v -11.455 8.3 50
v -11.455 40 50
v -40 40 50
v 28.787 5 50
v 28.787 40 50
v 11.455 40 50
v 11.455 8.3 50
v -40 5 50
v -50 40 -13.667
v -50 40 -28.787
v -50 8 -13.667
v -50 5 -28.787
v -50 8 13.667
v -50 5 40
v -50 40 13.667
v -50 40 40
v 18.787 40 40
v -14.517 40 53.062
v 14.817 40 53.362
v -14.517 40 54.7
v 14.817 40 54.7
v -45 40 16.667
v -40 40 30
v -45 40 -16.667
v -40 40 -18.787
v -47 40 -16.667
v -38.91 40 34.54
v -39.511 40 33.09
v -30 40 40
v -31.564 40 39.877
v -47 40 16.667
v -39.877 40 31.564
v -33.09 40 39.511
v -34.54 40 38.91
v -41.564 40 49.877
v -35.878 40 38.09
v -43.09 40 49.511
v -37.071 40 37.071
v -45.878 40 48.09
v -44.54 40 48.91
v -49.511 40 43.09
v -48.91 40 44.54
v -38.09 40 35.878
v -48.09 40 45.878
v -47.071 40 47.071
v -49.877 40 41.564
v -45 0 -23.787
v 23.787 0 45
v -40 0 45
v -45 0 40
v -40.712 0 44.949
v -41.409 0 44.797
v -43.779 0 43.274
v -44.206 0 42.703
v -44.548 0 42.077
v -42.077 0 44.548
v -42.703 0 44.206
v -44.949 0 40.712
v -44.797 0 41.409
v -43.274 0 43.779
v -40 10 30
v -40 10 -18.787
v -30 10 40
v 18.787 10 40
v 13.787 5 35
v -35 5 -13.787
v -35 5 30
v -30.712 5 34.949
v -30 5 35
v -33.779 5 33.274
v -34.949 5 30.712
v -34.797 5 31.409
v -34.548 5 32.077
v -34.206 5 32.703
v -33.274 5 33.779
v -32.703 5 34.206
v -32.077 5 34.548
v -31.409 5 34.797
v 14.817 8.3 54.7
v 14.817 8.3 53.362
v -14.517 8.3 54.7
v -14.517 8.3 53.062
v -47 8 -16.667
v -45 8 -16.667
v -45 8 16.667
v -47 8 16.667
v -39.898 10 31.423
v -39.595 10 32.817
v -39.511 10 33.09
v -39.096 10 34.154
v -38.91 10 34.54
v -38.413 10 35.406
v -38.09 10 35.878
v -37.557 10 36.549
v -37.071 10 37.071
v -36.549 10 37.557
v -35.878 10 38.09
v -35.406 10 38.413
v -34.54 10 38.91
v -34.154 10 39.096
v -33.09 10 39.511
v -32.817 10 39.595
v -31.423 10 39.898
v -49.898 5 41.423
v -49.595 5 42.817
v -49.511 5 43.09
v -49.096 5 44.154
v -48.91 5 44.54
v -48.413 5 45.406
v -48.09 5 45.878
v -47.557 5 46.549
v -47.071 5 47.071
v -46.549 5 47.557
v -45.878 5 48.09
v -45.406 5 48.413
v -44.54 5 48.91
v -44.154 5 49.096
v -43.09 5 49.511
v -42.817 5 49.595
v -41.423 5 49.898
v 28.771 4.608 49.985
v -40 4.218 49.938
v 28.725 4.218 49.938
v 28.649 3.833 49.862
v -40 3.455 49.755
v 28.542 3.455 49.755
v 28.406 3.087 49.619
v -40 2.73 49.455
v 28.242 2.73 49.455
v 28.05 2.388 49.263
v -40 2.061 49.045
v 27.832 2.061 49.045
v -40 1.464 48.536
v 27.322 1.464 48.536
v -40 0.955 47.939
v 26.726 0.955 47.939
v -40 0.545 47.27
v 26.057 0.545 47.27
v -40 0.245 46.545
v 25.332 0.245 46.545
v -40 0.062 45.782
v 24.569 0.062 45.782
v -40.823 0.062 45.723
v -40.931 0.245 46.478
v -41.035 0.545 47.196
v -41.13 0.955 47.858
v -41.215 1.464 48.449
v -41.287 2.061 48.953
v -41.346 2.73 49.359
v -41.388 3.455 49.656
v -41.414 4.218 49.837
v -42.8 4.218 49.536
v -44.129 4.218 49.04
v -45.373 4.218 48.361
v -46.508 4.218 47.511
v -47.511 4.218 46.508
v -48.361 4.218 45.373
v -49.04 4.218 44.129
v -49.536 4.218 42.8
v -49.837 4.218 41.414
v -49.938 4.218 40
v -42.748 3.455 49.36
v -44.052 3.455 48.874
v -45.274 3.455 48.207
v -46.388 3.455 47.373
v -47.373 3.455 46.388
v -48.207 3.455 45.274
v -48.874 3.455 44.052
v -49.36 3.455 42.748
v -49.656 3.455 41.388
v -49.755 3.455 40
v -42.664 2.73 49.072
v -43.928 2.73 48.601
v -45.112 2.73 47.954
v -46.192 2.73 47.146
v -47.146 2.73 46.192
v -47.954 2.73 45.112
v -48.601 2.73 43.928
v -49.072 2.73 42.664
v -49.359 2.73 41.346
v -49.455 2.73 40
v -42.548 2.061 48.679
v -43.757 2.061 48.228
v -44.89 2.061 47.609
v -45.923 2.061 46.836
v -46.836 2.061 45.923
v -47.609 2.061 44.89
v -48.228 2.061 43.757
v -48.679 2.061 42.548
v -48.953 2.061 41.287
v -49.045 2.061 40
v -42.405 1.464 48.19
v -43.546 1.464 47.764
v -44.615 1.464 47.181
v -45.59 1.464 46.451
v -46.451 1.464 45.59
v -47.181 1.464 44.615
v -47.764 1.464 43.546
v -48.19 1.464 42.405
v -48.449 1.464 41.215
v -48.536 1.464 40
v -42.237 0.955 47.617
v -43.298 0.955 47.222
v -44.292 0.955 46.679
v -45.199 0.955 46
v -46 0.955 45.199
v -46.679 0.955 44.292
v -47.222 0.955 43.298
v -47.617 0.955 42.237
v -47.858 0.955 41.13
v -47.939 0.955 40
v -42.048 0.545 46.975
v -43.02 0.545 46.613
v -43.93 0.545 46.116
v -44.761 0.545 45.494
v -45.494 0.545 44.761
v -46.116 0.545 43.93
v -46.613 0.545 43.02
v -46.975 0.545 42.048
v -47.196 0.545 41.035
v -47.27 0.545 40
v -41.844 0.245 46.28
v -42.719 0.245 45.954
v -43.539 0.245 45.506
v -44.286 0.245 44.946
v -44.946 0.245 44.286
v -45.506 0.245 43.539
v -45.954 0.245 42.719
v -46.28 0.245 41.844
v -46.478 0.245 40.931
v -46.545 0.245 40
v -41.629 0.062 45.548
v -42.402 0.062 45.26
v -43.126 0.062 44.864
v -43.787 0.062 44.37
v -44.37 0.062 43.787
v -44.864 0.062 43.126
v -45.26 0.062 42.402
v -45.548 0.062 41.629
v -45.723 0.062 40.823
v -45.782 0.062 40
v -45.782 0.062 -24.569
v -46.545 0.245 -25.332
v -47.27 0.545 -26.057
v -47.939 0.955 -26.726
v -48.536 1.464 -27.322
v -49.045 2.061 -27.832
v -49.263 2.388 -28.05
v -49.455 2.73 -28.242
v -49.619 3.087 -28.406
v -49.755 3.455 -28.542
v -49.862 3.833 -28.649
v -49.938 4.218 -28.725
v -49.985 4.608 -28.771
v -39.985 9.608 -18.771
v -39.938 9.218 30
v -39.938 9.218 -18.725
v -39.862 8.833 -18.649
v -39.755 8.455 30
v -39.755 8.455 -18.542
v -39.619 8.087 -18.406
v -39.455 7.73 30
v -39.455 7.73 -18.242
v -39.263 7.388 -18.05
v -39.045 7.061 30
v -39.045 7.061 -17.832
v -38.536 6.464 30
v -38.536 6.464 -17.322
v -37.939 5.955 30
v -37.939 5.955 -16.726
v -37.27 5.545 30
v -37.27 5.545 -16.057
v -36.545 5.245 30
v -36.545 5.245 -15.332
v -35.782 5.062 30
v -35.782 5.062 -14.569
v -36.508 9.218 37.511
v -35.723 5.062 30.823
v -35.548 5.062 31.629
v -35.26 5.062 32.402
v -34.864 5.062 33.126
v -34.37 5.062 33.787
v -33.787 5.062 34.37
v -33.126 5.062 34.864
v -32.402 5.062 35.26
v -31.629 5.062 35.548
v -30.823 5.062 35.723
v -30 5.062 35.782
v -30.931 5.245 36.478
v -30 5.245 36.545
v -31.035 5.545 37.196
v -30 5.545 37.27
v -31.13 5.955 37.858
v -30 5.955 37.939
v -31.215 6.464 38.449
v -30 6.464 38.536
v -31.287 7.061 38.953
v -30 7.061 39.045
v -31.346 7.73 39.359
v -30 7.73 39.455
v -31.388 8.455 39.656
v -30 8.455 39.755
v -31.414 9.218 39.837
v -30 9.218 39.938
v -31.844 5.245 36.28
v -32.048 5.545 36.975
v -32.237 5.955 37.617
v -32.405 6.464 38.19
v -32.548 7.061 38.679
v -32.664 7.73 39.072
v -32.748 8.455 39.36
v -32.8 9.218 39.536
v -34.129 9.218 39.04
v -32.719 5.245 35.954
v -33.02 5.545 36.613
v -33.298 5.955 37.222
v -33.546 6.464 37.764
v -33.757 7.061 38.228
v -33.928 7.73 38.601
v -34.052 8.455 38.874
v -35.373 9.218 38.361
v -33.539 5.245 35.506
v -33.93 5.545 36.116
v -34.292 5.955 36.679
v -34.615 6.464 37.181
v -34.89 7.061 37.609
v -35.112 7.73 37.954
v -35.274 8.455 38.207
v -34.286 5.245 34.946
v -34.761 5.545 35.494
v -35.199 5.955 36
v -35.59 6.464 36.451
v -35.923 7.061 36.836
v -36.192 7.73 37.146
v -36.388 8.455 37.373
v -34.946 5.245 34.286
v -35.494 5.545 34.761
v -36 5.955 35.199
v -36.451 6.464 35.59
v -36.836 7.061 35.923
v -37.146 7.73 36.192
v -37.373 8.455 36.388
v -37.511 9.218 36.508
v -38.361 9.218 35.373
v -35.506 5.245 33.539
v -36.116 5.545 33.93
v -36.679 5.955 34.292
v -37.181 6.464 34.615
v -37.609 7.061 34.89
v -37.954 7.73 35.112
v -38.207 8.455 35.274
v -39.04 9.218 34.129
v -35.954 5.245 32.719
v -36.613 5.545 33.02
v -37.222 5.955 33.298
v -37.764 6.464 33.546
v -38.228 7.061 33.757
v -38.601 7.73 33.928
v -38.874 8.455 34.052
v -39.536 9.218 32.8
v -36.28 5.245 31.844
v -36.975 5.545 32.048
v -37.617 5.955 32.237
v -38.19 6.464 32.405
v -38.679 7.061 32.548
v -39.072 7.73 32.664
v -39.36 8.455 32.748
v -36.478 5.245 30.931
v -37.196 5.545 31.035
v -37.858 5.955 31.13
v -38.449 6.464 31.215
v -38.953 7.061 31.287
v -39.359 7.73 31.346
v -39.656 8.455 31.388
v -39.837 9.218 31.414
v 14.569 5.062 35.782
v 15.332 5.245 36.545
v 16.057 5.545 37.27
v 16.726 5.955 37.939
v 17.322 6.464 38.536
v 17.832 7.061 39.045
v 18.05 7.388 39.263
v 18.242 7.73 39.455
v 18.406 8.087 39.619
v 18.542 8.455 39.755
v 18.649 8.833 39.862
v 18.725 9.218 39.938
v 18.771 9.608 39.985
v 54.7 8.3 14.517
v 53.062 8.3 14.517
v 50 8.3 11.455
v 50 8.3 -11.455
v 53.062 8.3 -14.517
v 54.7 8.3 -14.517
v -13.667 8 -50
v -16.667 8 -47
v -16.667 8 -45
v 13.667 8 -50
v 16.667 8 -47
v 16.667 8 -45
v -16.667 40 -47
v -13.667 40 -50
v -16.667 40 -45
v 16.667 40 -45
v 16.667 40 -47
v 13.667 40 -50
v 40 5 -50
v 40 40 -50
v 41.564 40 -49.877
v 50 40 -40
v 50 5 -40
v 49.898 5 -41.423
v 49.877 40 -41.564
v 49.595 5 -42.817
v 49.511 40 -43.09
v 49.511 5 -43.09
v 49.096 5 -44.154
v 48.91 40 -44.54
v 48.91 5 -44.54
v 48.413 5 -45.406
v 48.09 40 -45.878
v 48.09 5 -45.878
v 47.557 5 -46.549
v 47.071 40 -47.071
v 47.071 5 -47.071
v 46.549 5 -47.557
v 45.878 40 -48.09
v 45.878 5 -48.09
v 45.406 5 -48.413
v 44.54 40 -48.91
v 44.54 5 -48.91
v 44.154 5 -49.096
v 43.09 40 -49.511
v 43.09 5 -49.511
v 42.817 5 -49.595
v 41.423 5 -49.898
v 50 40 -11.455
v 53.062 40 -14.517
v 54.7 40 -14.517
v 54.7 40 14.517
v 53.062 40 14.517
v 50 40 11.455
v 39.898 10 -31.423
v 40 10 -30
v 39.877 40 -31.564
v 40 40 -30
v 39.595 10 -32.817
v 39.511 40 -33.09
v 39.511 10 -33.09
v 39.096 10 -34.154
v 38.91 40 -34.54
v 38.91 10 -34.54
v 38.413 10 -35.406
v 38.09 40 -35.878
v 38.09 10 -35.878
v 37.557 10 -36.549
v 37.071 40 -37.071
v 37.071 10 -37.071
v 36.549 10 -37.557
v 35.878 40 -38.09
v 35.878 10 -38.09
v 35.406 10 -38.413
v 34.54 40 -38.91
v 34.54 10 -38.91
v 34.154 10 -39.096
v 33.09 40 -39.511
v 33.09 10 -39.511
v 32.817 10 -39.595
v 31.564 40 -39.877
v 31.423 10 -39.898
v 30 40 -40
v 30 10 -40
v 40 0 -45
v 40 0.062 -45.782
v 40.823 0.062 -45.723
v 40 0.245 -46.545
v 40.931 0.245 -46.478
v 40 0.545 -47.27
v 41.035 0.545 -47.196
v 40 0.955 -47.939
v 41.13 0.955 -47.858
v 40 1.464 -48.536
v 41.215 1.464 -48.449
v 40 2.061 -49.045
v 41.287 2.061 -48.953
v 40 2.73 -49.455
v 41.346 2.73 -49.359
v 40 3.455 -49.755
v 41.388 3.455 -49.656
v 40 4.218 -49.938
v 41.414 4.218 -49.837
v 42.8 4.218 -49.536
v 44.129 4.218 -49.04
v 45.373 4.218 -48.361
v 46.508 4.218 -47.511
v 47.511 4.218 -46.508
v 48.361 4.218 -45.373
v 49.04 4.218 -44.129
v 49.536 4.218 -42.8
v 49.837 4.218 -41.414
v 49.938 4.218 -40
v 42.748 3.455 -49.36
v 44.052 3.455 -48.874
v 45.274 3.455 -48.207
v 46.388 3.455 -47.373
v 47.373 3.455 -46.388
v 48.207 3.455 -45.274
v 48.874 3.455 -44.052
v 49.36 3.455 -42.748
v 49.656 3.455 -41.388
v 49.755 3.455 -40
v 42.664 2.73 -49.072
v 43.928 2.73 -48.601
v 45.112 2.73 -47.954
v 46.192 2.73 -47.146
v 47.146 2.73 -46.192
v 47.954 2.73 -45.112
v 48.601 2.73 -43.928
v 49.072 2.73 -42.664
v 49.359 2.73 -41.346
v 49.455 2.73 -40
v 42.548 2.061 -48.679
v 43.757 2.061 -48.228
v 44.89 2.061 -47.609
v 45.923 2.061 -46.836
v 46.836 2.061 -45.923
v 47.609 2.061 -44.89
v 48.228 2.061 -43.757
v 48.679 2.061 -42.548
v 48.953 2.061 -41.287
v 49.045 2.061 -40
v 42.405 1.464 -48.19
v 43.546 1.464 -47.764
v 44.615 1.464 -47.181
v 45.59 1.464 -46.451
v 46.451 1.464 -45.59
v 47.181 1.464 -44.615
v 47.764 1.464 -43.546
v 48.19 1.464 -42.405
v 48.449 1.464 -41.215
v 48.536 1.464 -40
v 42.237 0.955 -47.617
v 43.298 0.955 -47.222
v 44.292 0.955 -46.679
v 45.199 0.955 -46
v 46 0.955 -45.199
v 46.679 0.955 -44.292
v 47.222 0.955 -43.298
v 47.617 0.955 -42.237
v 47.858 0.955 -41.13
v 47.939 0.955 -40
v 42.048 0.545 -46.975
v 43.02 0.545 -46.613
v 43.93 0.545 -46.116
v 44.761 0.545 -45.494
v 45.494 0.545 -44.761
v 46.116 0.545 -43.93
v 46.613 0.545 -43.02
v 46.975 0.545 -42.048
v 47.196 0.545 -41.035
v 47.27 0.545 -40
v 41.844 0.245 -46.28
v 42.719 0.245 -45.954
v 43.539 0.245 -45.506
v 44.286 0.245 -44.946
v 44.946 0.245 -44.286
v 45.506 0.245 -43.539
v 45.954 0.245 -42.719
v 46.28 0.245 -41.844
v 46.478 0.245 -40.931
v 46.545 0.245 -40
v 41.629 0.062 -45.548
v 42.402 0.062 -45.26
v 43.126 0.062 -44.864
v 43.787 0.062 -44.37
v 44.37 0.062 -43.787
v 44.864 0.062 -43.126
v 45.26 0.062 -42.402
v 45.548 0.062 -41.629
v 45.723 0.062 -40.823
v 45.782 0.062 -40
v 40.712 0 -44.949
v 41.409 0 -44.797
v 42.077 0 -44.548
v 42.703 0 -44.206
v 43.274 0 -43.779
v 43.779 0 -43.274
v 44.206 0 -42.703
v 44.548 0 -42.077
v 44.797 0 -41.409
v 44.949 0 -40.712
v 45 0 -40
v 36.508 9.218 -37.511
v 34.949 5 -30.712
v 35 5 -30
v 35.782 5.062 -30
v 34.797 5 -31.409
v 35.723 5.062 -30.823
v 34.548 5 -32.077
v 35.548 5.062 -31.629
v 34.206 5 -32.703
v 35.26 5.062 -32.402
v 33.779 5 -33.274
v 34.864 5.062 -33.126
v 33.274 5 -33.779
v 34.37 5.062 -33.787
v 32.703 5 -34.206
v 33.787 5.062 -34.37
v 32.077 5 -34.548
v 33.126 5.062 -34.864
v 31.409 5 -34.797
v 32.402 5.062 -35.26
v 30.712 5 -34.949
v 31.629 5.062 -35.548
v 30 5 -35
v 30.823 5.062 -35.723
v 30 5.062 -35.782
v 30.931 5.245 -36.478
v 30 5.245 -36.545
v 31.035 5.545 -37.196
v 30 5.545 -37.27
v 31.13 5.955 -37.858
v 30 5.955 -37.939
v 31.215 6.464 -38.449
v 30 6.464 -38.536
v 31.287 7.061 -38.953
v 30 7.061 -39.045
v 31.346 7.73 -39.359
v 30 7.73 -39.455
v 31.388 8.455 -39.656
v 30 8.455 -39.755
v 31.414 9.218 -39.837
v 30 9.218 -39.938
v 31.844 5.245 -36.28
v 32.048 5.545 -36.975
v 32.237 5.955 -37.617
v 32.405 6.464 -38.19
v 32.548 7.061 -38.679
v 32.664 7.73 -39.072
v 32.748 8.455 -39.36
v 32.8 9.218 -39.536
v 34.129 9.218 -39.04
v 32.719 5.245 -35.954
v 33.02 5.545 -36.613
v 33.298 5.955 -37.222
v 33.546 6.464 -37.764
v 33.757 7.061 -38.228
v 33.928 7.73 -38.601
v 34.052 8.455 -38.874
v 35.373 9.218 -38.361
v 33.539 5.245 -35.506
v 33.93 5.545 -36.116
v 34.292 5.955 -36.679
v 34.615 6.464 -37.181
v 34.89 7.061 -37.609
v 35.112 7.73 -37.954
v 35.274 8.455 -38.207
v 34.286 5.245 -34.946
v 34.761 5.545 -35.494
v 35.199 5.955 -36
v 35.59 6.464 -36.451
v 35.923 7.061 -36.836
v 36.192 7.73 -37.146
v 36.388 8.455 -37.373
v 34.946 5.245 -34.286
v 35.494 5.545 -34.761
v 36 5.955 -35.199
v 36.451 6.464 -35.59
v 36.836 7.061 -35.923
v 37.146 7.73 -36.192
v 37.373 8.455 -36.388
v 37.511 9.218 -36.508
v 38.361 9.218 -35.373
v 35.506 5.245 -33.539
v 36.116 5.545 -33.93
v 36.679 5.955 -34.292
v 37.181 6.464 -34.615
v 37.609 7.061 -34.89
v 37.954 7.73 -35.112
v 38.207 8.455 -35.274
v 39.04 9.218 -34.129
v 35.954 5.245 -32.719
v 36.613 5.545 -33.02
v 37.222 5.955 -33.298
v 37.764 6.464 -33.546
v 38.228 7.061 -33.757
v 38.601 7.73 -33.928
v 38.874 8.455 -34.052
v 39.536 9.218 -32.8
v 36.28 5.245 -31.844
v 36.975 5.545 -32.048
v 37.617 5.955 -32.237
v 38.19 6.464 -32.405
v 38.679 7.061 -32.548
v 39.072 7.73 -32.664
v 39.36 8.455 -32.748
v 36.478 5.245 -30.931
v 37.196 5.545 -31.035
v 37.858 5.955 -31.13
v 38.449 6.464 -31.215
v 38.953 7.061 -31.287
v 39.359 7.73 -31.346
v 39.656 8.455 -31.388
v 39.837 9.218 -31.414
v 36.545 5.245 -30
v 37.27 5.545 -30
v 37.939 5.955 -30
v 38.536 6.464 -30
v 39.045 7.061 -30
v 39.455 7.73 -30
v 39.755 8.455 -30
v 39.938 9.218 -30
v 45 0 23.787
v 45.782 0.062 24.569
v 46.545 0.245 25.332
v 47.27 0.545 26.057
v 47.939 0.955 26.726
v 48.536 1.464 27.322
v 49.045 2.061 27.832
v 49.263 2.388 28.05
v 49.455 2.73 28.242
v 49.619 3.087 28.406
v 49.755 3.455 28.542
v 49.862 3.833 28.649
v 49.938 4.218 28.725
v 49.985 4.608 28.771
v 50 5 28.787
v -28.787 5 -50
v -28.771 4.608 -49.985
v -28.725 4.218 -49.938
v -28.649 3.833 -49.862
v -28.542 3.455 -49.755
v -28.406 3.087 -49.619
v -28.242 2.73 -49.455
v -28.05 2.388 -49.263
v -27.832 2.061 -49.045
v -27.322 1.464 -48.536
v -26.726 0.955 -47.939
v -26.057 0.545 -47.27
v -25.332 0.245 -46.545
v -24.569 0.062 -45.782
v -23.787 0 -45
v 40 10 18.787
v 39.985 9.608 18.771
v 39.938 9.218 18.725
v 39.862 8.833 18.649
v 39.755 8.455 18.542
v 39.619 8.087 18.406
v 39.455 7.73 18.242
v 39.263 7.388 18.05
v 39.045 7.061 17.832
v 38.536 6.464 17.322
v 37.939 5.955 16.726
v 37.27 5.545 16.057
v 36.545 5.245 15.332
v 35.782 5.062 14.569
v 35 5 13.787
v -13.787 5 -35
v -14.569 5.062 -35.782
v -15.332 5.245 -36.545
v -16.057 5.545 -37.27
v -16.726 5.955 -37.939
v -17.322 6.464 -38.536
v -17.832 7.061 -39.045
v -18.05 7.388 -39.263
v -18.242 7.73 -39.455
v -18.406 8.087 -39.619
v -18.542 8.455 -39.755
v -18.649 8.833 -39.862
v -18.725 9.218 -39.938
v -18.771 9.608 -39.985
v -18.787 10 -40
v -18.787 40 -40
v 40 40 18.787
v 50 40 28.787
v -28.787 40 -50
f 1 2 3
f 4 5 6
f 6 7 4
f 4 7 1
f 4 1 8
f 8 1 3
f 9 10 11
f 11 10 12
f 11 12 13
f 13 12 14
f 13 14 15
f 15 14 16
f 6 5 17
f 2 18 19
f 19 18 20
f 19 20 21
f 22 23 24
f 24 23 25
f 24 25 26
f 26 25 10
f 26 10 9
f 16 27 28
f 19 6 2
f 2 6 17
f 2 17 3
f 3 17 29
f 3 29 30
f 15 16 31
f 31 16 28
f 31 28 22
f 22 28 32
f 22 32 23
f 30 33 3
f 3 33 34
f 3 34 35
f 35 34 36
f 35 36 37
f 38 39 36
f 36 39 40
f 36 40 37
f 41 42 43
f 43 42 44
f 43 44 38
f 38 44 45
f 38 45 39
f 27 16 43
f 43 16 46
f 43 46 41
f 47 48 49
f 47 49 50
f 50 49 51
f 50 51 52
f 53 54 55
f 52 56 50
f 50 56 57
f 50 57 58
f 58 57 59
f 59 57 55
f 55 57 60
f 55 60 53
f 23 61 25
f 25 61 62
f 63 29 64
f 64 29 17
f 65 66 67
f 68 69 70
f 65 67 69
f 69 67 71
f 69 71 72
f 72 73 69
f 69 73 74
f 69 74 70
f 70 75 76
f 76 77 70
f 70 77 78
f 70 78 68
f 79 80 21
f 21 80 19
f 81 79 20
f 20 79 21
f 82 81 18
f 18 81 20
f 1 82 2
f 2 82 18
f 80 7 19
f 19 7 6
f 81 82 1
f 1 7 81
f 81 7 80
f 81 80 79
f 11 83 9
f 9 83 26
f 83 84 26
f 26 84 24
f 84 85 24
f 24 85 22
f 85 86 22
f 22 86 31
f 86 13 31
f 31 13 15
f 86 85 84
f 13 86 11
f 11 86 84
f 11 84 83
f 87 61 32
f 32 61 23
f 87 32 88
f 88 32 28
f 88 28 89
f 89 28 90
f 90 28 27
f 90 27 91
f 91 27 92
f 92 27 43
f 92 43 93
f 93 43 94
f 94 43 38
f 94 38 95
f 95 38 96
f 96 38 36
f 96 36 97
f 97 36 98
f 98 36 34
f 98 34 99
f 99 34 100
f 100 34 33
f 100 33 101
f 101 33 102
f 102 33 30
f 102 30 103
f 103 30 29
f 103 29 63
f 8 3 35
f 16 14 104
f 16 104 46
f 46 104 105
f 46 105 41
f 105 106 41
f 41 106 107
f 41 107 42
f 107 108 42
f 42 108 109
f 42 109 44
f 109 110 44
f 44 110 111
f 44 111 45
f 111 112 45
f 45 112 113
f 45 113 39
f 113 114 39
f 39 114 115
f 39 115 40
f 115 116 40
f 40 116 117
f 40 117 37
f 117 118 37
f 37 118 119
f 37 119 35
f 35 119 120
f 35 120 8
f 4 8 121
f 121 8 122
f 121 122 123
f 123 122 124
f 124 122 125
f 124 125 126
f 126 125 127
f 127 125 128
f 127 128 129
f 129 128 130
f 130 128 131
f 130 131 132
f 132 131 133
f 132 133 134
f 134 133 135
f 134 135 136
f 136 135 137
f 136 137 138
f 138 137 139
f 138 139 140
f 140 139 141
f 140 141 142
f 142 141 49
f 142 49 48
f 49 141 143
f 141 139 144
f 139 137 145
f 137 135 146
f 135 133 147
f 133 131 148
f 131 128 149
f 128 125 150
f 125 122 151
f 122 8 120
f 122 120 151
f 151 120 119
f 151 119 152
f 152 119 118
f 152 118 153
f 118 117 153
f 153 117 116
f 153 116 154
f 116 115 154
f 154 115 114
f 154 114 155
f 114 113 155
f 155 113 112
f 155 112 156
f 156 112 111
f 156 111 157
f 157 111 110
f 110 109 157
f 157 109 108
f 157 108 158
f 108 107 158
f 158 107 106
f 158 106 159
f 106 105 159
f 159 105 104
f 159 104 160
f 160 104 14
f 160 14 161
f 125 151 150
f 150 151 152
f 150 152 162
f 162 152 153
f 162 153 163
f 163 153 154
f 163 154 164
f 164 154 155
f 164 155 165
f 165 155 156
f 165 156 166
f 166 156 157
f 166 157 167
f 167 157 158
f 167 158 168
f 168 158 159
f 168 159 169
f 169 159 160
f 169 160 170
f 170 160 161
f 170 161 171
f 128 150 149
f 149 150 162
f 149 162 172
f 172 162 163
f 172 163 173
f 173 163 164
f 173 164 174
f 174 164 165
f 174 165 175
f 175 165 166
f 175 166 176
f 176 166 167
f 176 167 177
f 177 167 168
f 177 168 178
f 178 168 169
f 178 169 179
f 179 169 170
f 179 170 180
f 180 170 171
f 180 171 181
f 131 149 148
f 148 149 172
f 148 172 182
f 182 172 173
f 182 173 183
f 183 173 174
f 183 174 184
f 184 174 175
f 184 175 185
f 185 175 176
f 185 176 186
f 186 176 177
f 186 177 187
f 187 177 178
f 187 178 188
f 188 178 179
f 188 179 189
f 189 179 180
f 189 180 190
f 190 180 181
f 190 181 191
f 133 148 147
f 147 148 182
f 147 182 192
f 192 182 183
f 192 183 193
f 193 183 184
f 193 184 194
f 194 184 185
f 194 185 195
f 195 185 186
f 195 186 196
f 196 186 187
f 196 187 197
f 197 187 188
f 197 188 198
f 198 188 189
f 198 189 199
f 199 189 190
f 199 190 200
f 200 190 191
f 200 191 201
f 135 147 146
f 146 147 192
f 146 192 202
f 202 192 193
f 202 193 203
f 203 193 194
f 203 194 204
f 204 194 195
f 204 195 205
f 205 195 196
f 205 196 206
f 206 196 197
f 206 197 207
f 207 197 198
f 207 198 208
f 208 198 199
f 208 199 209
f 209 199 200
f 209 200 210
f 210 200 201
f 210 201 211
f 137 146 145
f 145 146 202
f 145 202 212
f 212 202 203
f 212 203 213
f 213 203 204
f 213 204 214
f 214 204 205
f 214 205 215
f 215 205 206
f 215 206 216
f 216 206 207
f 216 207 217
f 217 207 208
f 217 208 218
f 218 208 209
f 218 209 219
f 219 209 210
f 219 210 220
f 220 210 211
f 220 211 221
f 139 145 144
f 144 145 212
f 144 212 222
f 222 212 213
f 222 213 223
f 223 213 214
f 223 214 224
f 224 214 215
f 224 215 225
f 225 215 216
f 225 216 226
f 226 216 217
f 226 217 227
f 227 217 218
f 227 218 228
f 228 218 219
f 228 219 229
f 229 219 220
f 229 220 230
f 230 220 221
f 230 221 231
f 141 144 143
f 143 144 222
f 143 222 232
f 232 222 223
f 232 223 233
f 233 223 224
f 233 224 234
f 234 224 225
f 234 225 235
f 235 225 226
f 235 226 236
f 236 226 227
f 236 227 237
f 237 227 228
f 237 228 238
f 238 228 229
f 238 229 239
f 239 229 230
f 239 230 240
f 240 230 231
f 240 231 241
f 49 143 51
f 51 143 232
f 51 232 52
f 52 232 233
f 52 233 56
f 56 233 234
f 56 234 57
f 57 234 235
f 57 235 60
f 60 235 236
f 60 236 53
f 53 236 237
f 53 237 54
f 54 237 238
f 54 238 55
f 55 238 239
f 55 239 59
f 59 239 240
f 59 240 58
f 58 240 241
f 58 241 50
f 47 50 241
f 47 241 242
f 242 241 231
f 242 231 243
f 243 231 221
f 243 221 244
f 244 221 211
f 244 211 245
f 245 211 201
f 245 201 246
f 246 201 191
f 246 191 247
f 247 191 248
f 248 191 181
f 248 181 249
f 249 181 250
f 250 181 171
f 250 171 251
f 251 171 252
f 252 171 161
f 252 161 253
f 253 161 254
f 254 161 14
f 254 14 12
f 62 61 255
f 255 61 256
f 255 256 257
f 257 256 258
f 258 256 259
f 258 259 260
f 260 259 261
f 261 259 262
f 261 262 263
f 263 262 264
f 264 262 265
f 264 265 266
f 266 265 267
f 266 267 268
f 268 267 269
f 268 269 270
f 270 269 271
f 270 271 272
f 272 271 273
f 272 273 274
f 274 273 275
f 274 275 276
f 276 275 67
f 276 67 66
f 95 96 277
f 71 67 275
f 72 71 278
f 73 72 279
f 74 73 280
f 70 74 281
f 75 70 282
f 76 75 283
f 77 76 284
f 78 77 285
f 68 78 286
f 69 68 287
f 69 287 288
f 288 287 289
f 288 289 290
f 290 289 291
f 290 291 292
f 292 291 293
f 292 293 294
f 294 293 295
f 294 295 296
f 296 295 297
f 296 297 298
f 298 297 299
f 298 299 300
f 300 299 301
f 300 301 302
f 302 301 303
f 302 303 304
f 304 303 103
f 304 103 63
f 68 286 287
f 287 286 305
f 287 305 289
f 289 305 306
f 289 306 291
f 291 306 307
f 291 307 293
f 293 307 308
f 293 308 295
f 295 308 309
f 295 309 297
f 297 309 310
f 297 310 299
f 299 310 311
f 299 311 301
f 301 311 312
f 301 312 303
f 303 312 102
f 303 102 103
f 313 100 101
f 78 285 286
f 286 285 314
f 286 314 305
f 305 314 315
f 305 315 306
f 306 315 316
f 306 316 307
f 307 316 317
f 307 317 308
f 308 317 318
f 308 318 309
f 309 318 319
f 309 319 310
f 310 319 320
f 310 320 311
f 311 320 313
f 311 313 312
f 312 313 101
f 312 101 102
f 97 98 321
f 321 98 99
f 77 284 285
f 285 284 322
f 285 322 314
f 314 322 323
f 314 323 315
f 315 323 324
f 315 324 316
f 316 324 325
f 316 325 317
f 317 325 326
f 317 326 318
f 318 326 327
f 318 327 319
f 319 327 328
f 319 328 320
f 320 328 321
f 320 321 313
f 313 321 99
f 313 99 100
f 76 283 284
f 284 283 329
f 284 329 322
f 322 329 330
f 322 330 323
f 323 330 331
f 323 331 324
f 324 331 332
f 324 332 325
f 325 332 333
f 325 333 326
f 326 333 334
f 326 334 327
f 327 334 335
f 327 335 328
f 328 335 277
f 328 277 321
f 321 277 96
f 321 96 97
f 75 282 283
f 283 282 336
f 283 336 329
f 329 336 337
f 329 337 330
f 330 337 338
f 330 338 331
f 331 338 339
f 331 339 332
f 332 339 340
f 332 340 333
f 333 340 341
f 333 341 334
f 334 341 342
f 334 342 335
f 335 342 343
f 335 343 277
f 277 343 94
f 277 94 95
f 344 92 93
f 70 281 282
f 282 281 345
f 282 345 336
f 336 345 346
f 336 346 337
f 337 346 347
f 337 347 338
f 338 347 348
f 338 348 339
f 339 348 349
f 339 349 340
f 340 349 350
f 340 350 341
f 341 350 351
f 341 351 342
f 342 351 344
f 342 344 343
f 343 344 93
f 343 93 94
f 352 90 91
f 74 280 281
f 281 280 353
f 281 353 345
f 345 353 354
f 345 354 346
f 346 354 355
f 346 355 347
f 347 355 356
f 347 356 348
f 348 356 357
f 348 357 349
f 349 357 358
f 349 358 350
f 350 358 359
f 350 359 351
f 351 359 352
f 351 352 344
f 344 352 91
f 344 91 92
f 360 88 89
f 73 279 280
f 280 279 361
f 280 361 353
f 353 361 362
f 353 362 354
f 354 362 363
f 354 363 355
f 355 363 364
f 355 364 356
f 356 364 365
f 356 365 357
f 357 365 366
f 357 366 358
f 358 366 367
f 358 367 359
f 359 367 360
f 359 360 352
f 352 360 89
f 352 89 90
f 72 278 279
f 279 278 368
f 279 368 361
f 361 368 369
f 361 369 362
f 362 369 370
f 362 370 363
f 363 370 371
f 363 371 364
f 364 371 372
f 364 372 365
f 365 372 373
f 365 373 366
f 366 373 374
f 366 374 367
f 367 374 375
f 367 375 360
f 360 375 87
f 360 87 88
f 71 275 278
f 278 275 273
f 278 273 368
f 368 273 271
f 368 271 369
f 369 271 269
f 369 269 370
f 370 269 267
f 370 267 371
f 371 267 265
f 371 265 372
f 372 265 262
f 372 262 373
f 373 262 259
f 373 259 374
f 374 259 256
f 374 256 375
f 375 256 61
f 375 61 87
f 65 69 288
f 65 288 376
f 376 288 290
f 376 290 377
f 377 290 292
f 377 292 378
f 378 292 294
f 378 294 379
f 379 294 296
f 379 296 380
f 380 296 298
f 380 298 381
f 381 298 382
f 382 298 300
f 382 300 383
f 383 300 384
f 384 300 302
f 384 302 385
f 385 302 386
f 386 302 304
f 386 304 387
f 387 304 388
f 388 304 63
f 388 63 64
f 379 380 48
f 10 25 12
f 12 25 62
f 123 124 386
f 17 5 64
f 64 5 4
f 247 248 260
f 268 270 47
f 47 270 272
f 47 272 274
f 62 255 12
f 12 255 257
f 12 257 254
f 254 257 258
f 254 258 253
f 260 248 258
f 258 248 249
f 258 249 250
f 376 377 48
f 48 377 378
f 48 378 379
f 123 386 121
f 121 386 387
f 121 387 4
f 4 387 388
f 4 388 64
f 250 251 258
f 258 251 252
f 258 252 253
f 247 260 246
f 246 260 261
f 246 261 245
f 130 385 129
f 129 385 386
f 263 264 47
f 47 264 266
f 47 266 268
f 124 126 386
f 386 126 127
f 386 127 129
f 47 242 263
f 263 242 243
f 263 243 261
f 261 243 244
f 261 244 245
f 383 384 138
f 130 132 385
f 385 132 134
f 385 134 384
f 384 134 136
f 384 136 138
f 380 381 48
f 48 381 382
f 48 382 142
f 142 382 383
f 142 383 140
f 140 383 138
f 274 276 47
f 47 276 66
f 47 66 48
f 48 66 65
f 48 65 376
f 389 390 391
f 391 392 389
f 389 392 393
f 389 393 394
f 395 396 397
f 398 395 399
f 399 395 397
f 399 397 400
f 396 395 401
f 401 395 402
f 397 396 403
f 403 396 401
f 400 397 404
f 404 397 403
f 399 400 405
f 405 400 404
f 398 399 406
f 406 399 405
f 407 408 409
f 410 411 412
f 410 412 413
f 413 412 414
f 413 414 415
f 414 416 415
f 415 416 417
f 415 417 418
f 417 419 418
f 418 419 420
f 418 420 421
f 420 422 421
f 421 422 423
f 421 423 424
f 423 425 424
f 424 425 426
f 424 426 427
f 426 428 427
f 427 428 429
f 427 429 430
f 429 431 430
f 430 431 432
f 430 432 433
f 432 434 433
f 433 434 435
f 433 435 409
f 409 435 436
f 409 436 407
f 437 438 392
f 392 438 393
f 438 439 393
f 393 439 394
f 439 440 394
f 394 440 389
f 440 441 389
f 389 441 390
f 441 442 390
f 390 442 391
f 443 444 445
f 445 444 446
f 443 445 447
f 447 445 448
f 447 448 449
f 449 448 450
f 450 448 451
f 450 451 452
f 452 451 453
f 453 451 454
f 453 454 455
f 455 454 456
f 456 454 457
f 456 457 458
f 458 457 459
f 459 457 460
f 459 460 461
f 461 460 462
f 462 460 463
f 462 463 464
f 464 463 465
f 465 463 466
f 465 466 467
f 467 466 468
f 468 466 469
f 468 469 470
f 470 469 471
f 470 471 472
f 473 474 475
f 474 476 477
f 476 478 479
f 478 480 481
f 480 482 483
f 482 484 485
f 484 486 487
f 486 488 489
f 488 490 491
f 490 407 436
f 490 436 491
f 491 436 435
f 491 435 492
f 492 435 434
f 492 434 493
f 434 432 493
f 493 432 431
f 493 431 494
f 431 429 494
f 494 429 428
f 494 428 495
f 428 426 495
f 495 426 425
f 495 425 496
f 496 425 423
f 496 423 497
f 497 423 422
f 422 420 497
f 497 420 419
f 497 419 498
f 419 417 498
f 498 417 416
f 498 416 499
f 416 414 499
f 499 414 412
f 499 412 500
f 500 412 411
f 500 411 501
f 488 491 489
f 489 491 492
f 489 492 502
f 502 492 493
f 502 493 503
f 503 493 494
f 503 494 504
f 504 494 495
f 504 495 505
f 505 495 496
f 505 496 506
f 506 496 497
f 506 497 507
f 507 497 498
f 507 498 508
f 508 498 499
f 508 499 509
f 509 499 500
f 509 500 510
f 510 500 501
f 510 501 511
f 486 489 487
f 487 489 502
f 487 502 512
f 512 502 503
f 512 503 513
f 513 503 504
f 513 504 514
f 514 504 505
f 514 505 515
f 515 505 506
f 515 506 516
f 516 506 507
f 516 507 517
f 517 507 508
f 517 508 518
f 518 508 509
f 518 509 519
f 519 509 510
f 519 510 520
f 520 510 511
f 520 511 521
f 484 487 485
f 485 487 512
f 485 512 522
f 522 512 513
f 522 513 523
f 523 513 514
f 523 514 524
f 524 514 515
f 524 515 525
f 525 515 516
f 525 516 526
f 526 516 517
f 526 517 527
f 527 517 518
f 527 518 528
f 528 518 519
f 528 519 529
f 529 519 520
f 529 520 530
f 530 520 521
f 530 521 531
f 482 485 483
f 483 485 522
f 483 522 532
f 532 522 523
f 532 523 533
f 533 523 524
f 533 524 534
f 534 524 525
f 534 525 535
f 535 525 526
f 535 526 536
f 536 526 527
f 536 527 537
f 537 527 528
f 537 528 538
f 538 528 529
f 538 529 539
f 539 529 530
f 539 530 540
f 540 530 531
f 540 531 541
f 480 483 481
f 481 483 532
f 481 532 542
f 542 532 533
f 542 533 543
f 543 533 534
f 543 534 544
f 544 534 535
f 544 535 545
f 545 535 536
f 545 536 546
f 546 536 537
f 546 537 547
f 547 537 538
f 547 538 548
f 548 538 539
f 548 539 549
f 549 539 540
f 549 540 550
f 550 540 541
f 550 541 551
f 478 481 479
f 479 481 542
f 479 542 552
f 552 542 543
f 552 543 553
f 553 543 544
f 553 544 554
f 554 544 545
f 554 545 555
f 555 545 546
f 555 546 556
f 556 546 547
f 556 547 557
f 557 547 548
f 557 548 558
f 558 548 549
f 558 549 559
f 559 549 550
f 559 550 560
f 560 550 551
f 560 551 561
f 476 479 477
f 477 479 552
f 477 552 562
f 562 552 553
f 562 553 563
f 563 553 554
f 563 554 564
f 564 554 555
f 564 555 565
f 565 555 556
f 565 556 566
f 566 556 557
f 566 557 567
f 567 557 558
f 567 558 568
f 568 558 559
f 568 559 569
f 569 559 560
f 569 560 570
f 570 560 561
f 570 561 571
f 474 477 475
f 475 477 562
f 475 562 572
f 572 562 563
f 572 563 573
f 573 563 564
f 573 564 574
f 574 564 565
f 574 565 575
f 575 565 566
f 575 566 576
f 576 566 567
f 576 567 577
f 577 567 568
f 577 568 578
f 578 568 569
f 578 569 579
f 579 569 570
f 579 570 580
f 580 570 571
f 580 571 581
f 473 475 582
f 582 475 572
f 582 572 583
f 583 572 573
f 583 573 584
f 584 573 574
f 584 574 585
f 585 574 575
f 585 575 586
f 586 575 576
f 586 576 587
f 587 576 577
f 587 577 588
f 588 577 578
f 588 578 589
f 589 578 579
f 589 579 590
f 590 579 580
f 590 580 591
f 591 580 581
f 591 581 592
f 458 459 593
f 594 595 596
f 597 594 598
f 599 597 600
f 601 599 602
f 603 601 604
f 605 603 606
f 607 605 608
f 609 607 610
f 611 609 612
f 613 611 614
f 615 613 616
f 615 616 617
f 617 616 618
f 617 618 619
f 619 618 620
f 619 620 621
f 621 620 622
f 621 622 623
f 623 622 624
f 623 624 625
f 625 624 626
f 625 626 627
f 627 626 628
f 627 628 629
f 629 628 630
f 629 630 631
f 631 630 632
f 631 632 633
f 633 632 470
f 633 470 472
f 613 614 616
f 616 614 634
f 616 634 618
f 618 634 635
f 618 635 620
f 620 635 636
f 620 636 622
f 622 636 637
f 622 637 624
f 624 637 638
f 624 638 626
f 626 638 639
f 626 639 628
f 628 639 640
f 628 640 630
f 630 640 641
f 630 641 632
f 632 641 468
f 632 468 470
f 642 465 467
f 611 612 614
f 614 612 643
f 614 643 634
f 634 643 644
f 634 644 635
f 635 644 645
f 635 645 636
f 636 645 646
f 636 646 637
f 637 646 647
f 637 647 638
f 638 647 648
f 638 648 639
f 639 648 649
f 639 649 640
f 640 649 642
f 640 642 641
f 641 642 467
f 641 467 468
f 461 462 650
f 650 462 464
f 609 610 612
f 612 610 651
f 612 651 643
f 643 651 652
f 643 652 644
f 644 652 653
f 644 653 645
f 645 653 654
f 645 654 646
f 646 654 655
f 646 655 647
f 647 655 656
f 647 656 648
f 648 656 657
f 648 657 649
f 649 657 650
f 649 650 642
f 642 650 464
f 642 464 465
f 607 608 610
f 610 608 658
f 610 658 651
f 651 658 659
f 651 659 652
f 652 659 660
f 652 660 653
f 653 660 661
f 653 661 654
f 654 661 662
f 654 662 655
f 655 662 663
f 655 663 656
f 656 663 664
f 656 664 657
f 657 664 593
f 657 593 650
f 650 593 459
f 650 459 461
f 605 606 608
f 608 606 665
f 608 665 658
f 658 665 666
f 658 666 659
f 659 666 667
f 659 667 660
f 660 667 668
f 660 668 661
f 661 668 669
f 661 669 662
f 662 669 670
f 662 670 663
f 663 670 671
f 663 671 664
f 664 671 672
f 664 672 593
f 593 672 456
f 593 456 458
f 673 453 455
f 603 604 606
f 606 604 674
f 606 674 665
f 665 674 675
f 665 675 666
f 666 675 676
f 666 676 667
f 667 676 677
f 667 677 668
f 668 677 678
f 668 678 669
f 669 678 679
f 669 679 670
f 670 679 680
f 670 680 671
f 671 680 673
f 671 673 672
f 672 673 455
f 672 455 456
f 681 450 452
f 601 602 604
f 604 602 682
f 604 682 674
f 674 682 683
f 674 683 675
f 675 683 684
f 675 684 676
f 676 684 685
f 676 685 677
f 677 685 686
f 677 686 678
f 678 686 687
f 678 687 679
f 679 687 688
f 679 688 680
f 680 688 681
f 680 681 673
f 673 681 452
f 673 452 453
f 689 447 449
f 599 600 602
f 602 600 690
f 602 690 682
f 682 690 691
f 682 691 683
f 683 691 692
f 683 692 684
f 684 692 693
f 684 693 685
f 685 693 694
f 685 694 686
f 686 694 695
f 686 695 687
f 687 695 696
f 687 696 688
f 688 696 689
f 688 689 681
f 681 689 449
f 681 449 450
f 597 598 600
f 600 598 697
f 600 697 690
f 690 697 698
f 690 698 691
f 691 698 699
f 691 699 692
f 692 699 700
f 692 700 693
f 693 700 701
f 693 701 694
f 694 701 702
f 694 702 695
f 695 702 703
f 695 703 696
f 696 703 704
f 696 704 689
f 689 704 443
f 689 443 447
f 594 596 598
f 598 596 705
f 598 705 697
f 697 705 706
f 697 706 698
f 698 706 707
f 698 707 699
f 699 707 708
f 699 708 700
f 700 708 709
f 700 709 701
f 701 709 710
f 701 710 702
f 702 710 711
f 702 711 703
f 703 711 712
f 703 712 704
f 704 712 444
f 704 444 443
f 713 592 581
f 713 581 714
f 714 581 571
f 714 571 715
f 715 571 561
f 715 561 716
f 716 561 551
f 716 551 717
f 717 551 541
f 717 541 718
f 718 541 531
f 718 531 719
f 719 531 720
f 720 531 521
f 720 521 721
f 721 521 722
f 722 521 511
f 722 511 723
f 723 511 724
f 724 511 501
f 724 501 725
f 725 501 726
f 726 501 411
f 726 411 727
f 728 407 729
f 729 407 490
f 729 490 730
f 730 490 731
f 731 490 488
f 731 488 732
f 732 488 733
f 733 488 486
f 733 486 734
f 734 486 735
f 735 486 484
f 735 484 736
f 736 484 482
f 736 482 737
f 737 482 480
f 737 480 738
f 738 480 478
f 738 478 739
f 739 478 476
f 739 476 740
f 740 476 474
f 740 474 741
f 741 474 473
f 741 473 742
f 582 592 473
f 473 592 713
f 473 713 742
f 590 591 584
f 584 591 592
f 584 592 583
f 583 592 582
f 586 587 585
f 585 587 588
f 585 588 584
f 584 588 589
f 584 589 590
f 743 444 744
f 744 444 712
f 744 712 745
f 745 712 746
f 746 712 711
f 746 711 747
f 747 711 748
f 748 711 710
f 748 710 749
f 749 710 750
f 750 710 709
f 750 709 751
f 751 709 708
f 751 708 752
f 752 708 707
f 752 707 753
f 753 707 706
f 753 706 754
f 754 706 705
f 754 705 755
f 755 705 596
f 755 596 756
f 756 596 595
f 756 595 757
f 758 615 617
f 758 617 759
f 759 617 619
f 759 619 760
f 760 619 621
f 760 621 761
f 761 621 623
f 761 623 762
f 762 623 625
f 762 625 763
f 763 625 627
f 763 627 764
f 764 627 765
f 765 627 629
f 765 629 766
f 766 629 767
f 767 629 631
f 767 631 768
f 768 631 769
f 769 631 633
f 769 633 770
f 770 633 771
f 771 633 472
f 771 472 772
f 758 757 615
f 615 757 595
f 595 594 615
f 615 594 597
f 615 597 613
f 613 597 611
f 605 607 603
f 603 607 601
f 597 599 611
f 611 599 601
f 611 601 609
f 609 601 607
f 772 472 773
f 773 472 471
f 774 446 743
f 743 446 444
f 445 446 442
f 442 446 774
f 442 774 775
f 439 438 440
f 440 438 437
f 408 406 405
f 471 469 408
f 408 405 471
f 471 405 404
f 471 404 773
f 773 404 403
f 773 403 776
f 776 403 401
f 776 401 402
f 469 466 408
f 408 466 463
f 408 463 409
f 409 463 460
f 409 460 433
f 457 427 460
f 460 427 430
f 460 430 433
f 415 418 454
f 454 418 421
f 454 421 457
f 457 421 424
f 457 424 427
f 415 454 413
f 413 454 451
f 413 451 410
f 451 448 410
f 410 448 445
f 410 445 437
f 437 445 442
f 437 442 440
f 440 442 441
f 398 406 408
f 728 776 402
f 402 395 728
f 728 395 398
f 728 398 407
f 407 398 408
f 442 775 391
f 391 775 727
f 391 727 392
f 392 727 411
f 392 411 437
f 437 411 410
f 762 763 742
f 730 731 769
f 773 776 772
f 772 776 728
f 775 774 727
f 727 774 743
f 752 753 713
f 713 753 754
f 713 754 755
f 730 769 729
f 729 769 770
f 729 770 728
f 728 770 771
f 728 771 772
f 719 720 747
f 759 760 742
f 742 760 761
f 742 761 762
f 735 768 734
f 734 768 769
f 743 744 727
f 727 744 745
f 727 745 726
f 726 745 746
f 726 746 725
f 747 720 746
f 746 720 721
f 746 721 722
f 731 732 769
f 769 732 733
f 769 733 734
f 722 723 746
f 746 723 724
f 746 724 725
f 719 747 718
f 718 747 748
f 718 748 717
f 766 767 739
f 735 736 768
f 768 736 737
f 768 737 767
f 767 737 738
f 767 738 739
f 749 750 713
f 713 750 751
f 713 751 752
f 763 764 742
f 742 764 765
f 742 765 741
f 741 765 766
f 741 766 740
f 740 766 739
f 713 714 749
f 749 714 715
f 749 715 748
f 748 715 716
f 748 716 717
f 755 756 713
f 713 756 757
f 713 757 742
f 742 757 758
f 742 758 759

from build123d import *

# Parameters (mm, degrees)
SKETCH1_W                    = 100
SKETCH1_H                    = 100
BOSS_EXTRUDE1_DEPTH          = 40
SHELL1_T                     = -10
SHELL1_THICKNESS_2_FACE_W    = 80
SHELL1_THICKNESS_2_FACE_H    = 80
SHELL1_THICKNESS_2_DEPTH     = 5
CUT_EXTRUDE1_DEPTH           = 32
BOSS_EXTRUDE2_DEPTH          = 31.7
CUT_EXTRUDE2_DEPTH           = 32
BOSS_EXTRUDE3_DEPTH          = 31.7
FILLET1_R                    = 10
FILLET2_R                    = 5
CUT_EXTRUDE_THIN1_DEPTH      = 88.087197681
CUT_EXTRUDE_THIN1_DEPTH_BACK = 88.087197681


with BuildPart() as part:
    # Sketch1 → Boss-Extrude1 (new body)
    with BuildSketch(Plane(origin=(0, 0, 0), x_dir=(1, 0, 0), z_dir=(0, 1, 0))):
        Rectangle(SKETCH1_W, SKETCH1_H)
    extrude(amount=BOSS_EXTRUDE1_DEPTH)

    # Shell1
    shell1_openings = [part.faces().sort_by_distance(p)[0] for p in [
        (0, 40, 0),
    ]]
    offset(amount=SHELL1_T, openings=shell1_openings, kind=Kind.INTERSECTION)

    # Shell1 thickness 2 face (on inner face of the shell) → Shell1 thickness 2 (cut)
    with BuildSketch(Plane(origin=(0, 10, 0), x_dir=(0, 0, -1), z_dir=(0, -1, 0))):
        Rectangle(SHELL1_THICKNESS_2_FACE_W, SHELL1_THICKNESS_2_FACE_H)
    extrude(amount=SHELL1_THICKNESS_2_DEPTH, mode=Mode.SUBTRACT)

    # Sketch2 → Cut-Extrude1 (cut)
    with BuildSketch(Plane(origin=(0, 40, 0), x_dir=(1, 0, 0), z_dir=(0, 1, 0))):
        Polygon((-13.666666667, 50), (-16.666666667, 47), (-16.666666667, 45), (16.666666667, 45), (16.666666667, 47), (13.666666667, 50), align=None)
    extrude(amount=-CUT_EXTRUDE1_DEPTH, mode=Mode.SUBTRACT)

    # Sketch3 → Boss-Extrude2 (add)
    with BuildSketch(Plane(origin=(0, 40, 0), x_dir=(1, 0, 0), z_dir=(0, 1, 0))):
        Polygon((-11.454534632, -50), (-14.516666667, -53.062132034), (-14.516666667, -54.7), (14.816666667, -54.7), (14.816666667, -53.362132034), (11.454534632, -50), align=None)
    extrude(amount=-BOSS_EXTRUDE2_DEPTH)

    # Sketch4 → Cut-Extrude2 (cut)
    with BuildSketch(Plane(origin=(0, 40, 0), x_dir=(1, 0, 0), z_dir=(0, 1, 0))):
        Polygon((-45, 16.666666667), (-45, -16.666666667), (-47, -16.666666667), (-50, -13.666666667), (-50, 13.666666667), (-47, 16.666666667), align=None)
    extrude(amount=-CUT_EXTRUDE2_DEPTH, mode=Mode.SUBTRACT)

    # Sketch5 → Boss-Extrude3 (add)
    with BuildSketch(Plane(origin=(0, 40, 0), x_dir=(1, 0, 0), z_dir=(0, 1, 0))):
        Polygon((50, 11.454534632), (50, -11.454534632), (53.062132034, -14.516666667), (54.7, -14.516666667), (54.7, 14.516666667), (53.062132034, 14.516666667), align=None)
    extrude(amount=-BOSS_EXTRUDE3_DEPTH)

    # Fillet1
    fillet1_edges = [part.edges().sort_by_distance(p)[0] for p in [
        (40, 22.5, 40),
        (40, 22.5, -40),
        (-40, 22.5, -40),
        (-40, 22.5, 40),
        (50, 20, 50),
        (-50, 20, 50),
        (-50, 20, -50),
        (50, 20, -50),
    ]]
    fillet(fillet1_edges, radius=FILLET1_R)

    # Fillet2
    fillet2_edges = [part.edges().sort_by_distance(p)[0] for p in [
        (0, 0, -50),
        (50, 0, 0),
        (0, 0, 50),
        (-50, 0, 0),
        (47.071067812, 0, 47.071067812),
        (-47.071067812, 0, 47.071067812),
        (-47.071067812, 0, -47.071067812),
        (47.071067812, 0, -47.071067812),
        (40, 5, 0),
        (0, 5, -40),
        (-40, 5, 0),
        (0, 5, 40),
        (37.071067812, 5, 37.071067812),
        (-37.071067812, 5, 37.071067812),
        (-37.071067812, 5, -37.071067812),
        (37.071067812, 5, -37.071067812),
    ]]
    fillet(fillet2_edges, radius=FILLET2_R)

    # Sketch7 → Cut-Extrude-Thin1 (cut, two sides: drawn at the far end of the back side and taken through both)
    with BuildSketch(Plane(origin=(0, 40, 0), x_dir=(1, 0, 0), z_dir=(0, 1, 0)).offset(-CUT_EXTRUDE_THIN1_DEPTH_BACK)):
        Polygon((-57.67766953, 36.464466094), (36.464466094, -57.67766953), (57.67766953, -36.464466094), (-36.464466094, 57.67766953), align=None)
    extrude(amount=CUT_EXTRUDE_THIN1_DEPTH + CUT_EXTRUDE_THIN1_DEPTH_BACK, mode=Mode.SUBTRACT)


with BuildPart() as cut_extrude_thin1_piece_1:
    # of the separate pieces the step leaves, piece 1, a body of its own (cut_extrude_thin1_pieces)
    add(part.part.solids().sort_by_distance((-40, 40, 50))[0])


with BuildPart() as cut_extrude_thin1_piece_2:
    # of the separate pieces the step leaves, piece 2, a body of its own (cut_extrude_thin1_pieces)
    add(part.part.solids().sort_by_distance((-28.786796564, 5, -50))[0])


solid = Compound([cut_extrude_thin1_piece_1.part, cut_extrude_thin1_piece_2.part])
